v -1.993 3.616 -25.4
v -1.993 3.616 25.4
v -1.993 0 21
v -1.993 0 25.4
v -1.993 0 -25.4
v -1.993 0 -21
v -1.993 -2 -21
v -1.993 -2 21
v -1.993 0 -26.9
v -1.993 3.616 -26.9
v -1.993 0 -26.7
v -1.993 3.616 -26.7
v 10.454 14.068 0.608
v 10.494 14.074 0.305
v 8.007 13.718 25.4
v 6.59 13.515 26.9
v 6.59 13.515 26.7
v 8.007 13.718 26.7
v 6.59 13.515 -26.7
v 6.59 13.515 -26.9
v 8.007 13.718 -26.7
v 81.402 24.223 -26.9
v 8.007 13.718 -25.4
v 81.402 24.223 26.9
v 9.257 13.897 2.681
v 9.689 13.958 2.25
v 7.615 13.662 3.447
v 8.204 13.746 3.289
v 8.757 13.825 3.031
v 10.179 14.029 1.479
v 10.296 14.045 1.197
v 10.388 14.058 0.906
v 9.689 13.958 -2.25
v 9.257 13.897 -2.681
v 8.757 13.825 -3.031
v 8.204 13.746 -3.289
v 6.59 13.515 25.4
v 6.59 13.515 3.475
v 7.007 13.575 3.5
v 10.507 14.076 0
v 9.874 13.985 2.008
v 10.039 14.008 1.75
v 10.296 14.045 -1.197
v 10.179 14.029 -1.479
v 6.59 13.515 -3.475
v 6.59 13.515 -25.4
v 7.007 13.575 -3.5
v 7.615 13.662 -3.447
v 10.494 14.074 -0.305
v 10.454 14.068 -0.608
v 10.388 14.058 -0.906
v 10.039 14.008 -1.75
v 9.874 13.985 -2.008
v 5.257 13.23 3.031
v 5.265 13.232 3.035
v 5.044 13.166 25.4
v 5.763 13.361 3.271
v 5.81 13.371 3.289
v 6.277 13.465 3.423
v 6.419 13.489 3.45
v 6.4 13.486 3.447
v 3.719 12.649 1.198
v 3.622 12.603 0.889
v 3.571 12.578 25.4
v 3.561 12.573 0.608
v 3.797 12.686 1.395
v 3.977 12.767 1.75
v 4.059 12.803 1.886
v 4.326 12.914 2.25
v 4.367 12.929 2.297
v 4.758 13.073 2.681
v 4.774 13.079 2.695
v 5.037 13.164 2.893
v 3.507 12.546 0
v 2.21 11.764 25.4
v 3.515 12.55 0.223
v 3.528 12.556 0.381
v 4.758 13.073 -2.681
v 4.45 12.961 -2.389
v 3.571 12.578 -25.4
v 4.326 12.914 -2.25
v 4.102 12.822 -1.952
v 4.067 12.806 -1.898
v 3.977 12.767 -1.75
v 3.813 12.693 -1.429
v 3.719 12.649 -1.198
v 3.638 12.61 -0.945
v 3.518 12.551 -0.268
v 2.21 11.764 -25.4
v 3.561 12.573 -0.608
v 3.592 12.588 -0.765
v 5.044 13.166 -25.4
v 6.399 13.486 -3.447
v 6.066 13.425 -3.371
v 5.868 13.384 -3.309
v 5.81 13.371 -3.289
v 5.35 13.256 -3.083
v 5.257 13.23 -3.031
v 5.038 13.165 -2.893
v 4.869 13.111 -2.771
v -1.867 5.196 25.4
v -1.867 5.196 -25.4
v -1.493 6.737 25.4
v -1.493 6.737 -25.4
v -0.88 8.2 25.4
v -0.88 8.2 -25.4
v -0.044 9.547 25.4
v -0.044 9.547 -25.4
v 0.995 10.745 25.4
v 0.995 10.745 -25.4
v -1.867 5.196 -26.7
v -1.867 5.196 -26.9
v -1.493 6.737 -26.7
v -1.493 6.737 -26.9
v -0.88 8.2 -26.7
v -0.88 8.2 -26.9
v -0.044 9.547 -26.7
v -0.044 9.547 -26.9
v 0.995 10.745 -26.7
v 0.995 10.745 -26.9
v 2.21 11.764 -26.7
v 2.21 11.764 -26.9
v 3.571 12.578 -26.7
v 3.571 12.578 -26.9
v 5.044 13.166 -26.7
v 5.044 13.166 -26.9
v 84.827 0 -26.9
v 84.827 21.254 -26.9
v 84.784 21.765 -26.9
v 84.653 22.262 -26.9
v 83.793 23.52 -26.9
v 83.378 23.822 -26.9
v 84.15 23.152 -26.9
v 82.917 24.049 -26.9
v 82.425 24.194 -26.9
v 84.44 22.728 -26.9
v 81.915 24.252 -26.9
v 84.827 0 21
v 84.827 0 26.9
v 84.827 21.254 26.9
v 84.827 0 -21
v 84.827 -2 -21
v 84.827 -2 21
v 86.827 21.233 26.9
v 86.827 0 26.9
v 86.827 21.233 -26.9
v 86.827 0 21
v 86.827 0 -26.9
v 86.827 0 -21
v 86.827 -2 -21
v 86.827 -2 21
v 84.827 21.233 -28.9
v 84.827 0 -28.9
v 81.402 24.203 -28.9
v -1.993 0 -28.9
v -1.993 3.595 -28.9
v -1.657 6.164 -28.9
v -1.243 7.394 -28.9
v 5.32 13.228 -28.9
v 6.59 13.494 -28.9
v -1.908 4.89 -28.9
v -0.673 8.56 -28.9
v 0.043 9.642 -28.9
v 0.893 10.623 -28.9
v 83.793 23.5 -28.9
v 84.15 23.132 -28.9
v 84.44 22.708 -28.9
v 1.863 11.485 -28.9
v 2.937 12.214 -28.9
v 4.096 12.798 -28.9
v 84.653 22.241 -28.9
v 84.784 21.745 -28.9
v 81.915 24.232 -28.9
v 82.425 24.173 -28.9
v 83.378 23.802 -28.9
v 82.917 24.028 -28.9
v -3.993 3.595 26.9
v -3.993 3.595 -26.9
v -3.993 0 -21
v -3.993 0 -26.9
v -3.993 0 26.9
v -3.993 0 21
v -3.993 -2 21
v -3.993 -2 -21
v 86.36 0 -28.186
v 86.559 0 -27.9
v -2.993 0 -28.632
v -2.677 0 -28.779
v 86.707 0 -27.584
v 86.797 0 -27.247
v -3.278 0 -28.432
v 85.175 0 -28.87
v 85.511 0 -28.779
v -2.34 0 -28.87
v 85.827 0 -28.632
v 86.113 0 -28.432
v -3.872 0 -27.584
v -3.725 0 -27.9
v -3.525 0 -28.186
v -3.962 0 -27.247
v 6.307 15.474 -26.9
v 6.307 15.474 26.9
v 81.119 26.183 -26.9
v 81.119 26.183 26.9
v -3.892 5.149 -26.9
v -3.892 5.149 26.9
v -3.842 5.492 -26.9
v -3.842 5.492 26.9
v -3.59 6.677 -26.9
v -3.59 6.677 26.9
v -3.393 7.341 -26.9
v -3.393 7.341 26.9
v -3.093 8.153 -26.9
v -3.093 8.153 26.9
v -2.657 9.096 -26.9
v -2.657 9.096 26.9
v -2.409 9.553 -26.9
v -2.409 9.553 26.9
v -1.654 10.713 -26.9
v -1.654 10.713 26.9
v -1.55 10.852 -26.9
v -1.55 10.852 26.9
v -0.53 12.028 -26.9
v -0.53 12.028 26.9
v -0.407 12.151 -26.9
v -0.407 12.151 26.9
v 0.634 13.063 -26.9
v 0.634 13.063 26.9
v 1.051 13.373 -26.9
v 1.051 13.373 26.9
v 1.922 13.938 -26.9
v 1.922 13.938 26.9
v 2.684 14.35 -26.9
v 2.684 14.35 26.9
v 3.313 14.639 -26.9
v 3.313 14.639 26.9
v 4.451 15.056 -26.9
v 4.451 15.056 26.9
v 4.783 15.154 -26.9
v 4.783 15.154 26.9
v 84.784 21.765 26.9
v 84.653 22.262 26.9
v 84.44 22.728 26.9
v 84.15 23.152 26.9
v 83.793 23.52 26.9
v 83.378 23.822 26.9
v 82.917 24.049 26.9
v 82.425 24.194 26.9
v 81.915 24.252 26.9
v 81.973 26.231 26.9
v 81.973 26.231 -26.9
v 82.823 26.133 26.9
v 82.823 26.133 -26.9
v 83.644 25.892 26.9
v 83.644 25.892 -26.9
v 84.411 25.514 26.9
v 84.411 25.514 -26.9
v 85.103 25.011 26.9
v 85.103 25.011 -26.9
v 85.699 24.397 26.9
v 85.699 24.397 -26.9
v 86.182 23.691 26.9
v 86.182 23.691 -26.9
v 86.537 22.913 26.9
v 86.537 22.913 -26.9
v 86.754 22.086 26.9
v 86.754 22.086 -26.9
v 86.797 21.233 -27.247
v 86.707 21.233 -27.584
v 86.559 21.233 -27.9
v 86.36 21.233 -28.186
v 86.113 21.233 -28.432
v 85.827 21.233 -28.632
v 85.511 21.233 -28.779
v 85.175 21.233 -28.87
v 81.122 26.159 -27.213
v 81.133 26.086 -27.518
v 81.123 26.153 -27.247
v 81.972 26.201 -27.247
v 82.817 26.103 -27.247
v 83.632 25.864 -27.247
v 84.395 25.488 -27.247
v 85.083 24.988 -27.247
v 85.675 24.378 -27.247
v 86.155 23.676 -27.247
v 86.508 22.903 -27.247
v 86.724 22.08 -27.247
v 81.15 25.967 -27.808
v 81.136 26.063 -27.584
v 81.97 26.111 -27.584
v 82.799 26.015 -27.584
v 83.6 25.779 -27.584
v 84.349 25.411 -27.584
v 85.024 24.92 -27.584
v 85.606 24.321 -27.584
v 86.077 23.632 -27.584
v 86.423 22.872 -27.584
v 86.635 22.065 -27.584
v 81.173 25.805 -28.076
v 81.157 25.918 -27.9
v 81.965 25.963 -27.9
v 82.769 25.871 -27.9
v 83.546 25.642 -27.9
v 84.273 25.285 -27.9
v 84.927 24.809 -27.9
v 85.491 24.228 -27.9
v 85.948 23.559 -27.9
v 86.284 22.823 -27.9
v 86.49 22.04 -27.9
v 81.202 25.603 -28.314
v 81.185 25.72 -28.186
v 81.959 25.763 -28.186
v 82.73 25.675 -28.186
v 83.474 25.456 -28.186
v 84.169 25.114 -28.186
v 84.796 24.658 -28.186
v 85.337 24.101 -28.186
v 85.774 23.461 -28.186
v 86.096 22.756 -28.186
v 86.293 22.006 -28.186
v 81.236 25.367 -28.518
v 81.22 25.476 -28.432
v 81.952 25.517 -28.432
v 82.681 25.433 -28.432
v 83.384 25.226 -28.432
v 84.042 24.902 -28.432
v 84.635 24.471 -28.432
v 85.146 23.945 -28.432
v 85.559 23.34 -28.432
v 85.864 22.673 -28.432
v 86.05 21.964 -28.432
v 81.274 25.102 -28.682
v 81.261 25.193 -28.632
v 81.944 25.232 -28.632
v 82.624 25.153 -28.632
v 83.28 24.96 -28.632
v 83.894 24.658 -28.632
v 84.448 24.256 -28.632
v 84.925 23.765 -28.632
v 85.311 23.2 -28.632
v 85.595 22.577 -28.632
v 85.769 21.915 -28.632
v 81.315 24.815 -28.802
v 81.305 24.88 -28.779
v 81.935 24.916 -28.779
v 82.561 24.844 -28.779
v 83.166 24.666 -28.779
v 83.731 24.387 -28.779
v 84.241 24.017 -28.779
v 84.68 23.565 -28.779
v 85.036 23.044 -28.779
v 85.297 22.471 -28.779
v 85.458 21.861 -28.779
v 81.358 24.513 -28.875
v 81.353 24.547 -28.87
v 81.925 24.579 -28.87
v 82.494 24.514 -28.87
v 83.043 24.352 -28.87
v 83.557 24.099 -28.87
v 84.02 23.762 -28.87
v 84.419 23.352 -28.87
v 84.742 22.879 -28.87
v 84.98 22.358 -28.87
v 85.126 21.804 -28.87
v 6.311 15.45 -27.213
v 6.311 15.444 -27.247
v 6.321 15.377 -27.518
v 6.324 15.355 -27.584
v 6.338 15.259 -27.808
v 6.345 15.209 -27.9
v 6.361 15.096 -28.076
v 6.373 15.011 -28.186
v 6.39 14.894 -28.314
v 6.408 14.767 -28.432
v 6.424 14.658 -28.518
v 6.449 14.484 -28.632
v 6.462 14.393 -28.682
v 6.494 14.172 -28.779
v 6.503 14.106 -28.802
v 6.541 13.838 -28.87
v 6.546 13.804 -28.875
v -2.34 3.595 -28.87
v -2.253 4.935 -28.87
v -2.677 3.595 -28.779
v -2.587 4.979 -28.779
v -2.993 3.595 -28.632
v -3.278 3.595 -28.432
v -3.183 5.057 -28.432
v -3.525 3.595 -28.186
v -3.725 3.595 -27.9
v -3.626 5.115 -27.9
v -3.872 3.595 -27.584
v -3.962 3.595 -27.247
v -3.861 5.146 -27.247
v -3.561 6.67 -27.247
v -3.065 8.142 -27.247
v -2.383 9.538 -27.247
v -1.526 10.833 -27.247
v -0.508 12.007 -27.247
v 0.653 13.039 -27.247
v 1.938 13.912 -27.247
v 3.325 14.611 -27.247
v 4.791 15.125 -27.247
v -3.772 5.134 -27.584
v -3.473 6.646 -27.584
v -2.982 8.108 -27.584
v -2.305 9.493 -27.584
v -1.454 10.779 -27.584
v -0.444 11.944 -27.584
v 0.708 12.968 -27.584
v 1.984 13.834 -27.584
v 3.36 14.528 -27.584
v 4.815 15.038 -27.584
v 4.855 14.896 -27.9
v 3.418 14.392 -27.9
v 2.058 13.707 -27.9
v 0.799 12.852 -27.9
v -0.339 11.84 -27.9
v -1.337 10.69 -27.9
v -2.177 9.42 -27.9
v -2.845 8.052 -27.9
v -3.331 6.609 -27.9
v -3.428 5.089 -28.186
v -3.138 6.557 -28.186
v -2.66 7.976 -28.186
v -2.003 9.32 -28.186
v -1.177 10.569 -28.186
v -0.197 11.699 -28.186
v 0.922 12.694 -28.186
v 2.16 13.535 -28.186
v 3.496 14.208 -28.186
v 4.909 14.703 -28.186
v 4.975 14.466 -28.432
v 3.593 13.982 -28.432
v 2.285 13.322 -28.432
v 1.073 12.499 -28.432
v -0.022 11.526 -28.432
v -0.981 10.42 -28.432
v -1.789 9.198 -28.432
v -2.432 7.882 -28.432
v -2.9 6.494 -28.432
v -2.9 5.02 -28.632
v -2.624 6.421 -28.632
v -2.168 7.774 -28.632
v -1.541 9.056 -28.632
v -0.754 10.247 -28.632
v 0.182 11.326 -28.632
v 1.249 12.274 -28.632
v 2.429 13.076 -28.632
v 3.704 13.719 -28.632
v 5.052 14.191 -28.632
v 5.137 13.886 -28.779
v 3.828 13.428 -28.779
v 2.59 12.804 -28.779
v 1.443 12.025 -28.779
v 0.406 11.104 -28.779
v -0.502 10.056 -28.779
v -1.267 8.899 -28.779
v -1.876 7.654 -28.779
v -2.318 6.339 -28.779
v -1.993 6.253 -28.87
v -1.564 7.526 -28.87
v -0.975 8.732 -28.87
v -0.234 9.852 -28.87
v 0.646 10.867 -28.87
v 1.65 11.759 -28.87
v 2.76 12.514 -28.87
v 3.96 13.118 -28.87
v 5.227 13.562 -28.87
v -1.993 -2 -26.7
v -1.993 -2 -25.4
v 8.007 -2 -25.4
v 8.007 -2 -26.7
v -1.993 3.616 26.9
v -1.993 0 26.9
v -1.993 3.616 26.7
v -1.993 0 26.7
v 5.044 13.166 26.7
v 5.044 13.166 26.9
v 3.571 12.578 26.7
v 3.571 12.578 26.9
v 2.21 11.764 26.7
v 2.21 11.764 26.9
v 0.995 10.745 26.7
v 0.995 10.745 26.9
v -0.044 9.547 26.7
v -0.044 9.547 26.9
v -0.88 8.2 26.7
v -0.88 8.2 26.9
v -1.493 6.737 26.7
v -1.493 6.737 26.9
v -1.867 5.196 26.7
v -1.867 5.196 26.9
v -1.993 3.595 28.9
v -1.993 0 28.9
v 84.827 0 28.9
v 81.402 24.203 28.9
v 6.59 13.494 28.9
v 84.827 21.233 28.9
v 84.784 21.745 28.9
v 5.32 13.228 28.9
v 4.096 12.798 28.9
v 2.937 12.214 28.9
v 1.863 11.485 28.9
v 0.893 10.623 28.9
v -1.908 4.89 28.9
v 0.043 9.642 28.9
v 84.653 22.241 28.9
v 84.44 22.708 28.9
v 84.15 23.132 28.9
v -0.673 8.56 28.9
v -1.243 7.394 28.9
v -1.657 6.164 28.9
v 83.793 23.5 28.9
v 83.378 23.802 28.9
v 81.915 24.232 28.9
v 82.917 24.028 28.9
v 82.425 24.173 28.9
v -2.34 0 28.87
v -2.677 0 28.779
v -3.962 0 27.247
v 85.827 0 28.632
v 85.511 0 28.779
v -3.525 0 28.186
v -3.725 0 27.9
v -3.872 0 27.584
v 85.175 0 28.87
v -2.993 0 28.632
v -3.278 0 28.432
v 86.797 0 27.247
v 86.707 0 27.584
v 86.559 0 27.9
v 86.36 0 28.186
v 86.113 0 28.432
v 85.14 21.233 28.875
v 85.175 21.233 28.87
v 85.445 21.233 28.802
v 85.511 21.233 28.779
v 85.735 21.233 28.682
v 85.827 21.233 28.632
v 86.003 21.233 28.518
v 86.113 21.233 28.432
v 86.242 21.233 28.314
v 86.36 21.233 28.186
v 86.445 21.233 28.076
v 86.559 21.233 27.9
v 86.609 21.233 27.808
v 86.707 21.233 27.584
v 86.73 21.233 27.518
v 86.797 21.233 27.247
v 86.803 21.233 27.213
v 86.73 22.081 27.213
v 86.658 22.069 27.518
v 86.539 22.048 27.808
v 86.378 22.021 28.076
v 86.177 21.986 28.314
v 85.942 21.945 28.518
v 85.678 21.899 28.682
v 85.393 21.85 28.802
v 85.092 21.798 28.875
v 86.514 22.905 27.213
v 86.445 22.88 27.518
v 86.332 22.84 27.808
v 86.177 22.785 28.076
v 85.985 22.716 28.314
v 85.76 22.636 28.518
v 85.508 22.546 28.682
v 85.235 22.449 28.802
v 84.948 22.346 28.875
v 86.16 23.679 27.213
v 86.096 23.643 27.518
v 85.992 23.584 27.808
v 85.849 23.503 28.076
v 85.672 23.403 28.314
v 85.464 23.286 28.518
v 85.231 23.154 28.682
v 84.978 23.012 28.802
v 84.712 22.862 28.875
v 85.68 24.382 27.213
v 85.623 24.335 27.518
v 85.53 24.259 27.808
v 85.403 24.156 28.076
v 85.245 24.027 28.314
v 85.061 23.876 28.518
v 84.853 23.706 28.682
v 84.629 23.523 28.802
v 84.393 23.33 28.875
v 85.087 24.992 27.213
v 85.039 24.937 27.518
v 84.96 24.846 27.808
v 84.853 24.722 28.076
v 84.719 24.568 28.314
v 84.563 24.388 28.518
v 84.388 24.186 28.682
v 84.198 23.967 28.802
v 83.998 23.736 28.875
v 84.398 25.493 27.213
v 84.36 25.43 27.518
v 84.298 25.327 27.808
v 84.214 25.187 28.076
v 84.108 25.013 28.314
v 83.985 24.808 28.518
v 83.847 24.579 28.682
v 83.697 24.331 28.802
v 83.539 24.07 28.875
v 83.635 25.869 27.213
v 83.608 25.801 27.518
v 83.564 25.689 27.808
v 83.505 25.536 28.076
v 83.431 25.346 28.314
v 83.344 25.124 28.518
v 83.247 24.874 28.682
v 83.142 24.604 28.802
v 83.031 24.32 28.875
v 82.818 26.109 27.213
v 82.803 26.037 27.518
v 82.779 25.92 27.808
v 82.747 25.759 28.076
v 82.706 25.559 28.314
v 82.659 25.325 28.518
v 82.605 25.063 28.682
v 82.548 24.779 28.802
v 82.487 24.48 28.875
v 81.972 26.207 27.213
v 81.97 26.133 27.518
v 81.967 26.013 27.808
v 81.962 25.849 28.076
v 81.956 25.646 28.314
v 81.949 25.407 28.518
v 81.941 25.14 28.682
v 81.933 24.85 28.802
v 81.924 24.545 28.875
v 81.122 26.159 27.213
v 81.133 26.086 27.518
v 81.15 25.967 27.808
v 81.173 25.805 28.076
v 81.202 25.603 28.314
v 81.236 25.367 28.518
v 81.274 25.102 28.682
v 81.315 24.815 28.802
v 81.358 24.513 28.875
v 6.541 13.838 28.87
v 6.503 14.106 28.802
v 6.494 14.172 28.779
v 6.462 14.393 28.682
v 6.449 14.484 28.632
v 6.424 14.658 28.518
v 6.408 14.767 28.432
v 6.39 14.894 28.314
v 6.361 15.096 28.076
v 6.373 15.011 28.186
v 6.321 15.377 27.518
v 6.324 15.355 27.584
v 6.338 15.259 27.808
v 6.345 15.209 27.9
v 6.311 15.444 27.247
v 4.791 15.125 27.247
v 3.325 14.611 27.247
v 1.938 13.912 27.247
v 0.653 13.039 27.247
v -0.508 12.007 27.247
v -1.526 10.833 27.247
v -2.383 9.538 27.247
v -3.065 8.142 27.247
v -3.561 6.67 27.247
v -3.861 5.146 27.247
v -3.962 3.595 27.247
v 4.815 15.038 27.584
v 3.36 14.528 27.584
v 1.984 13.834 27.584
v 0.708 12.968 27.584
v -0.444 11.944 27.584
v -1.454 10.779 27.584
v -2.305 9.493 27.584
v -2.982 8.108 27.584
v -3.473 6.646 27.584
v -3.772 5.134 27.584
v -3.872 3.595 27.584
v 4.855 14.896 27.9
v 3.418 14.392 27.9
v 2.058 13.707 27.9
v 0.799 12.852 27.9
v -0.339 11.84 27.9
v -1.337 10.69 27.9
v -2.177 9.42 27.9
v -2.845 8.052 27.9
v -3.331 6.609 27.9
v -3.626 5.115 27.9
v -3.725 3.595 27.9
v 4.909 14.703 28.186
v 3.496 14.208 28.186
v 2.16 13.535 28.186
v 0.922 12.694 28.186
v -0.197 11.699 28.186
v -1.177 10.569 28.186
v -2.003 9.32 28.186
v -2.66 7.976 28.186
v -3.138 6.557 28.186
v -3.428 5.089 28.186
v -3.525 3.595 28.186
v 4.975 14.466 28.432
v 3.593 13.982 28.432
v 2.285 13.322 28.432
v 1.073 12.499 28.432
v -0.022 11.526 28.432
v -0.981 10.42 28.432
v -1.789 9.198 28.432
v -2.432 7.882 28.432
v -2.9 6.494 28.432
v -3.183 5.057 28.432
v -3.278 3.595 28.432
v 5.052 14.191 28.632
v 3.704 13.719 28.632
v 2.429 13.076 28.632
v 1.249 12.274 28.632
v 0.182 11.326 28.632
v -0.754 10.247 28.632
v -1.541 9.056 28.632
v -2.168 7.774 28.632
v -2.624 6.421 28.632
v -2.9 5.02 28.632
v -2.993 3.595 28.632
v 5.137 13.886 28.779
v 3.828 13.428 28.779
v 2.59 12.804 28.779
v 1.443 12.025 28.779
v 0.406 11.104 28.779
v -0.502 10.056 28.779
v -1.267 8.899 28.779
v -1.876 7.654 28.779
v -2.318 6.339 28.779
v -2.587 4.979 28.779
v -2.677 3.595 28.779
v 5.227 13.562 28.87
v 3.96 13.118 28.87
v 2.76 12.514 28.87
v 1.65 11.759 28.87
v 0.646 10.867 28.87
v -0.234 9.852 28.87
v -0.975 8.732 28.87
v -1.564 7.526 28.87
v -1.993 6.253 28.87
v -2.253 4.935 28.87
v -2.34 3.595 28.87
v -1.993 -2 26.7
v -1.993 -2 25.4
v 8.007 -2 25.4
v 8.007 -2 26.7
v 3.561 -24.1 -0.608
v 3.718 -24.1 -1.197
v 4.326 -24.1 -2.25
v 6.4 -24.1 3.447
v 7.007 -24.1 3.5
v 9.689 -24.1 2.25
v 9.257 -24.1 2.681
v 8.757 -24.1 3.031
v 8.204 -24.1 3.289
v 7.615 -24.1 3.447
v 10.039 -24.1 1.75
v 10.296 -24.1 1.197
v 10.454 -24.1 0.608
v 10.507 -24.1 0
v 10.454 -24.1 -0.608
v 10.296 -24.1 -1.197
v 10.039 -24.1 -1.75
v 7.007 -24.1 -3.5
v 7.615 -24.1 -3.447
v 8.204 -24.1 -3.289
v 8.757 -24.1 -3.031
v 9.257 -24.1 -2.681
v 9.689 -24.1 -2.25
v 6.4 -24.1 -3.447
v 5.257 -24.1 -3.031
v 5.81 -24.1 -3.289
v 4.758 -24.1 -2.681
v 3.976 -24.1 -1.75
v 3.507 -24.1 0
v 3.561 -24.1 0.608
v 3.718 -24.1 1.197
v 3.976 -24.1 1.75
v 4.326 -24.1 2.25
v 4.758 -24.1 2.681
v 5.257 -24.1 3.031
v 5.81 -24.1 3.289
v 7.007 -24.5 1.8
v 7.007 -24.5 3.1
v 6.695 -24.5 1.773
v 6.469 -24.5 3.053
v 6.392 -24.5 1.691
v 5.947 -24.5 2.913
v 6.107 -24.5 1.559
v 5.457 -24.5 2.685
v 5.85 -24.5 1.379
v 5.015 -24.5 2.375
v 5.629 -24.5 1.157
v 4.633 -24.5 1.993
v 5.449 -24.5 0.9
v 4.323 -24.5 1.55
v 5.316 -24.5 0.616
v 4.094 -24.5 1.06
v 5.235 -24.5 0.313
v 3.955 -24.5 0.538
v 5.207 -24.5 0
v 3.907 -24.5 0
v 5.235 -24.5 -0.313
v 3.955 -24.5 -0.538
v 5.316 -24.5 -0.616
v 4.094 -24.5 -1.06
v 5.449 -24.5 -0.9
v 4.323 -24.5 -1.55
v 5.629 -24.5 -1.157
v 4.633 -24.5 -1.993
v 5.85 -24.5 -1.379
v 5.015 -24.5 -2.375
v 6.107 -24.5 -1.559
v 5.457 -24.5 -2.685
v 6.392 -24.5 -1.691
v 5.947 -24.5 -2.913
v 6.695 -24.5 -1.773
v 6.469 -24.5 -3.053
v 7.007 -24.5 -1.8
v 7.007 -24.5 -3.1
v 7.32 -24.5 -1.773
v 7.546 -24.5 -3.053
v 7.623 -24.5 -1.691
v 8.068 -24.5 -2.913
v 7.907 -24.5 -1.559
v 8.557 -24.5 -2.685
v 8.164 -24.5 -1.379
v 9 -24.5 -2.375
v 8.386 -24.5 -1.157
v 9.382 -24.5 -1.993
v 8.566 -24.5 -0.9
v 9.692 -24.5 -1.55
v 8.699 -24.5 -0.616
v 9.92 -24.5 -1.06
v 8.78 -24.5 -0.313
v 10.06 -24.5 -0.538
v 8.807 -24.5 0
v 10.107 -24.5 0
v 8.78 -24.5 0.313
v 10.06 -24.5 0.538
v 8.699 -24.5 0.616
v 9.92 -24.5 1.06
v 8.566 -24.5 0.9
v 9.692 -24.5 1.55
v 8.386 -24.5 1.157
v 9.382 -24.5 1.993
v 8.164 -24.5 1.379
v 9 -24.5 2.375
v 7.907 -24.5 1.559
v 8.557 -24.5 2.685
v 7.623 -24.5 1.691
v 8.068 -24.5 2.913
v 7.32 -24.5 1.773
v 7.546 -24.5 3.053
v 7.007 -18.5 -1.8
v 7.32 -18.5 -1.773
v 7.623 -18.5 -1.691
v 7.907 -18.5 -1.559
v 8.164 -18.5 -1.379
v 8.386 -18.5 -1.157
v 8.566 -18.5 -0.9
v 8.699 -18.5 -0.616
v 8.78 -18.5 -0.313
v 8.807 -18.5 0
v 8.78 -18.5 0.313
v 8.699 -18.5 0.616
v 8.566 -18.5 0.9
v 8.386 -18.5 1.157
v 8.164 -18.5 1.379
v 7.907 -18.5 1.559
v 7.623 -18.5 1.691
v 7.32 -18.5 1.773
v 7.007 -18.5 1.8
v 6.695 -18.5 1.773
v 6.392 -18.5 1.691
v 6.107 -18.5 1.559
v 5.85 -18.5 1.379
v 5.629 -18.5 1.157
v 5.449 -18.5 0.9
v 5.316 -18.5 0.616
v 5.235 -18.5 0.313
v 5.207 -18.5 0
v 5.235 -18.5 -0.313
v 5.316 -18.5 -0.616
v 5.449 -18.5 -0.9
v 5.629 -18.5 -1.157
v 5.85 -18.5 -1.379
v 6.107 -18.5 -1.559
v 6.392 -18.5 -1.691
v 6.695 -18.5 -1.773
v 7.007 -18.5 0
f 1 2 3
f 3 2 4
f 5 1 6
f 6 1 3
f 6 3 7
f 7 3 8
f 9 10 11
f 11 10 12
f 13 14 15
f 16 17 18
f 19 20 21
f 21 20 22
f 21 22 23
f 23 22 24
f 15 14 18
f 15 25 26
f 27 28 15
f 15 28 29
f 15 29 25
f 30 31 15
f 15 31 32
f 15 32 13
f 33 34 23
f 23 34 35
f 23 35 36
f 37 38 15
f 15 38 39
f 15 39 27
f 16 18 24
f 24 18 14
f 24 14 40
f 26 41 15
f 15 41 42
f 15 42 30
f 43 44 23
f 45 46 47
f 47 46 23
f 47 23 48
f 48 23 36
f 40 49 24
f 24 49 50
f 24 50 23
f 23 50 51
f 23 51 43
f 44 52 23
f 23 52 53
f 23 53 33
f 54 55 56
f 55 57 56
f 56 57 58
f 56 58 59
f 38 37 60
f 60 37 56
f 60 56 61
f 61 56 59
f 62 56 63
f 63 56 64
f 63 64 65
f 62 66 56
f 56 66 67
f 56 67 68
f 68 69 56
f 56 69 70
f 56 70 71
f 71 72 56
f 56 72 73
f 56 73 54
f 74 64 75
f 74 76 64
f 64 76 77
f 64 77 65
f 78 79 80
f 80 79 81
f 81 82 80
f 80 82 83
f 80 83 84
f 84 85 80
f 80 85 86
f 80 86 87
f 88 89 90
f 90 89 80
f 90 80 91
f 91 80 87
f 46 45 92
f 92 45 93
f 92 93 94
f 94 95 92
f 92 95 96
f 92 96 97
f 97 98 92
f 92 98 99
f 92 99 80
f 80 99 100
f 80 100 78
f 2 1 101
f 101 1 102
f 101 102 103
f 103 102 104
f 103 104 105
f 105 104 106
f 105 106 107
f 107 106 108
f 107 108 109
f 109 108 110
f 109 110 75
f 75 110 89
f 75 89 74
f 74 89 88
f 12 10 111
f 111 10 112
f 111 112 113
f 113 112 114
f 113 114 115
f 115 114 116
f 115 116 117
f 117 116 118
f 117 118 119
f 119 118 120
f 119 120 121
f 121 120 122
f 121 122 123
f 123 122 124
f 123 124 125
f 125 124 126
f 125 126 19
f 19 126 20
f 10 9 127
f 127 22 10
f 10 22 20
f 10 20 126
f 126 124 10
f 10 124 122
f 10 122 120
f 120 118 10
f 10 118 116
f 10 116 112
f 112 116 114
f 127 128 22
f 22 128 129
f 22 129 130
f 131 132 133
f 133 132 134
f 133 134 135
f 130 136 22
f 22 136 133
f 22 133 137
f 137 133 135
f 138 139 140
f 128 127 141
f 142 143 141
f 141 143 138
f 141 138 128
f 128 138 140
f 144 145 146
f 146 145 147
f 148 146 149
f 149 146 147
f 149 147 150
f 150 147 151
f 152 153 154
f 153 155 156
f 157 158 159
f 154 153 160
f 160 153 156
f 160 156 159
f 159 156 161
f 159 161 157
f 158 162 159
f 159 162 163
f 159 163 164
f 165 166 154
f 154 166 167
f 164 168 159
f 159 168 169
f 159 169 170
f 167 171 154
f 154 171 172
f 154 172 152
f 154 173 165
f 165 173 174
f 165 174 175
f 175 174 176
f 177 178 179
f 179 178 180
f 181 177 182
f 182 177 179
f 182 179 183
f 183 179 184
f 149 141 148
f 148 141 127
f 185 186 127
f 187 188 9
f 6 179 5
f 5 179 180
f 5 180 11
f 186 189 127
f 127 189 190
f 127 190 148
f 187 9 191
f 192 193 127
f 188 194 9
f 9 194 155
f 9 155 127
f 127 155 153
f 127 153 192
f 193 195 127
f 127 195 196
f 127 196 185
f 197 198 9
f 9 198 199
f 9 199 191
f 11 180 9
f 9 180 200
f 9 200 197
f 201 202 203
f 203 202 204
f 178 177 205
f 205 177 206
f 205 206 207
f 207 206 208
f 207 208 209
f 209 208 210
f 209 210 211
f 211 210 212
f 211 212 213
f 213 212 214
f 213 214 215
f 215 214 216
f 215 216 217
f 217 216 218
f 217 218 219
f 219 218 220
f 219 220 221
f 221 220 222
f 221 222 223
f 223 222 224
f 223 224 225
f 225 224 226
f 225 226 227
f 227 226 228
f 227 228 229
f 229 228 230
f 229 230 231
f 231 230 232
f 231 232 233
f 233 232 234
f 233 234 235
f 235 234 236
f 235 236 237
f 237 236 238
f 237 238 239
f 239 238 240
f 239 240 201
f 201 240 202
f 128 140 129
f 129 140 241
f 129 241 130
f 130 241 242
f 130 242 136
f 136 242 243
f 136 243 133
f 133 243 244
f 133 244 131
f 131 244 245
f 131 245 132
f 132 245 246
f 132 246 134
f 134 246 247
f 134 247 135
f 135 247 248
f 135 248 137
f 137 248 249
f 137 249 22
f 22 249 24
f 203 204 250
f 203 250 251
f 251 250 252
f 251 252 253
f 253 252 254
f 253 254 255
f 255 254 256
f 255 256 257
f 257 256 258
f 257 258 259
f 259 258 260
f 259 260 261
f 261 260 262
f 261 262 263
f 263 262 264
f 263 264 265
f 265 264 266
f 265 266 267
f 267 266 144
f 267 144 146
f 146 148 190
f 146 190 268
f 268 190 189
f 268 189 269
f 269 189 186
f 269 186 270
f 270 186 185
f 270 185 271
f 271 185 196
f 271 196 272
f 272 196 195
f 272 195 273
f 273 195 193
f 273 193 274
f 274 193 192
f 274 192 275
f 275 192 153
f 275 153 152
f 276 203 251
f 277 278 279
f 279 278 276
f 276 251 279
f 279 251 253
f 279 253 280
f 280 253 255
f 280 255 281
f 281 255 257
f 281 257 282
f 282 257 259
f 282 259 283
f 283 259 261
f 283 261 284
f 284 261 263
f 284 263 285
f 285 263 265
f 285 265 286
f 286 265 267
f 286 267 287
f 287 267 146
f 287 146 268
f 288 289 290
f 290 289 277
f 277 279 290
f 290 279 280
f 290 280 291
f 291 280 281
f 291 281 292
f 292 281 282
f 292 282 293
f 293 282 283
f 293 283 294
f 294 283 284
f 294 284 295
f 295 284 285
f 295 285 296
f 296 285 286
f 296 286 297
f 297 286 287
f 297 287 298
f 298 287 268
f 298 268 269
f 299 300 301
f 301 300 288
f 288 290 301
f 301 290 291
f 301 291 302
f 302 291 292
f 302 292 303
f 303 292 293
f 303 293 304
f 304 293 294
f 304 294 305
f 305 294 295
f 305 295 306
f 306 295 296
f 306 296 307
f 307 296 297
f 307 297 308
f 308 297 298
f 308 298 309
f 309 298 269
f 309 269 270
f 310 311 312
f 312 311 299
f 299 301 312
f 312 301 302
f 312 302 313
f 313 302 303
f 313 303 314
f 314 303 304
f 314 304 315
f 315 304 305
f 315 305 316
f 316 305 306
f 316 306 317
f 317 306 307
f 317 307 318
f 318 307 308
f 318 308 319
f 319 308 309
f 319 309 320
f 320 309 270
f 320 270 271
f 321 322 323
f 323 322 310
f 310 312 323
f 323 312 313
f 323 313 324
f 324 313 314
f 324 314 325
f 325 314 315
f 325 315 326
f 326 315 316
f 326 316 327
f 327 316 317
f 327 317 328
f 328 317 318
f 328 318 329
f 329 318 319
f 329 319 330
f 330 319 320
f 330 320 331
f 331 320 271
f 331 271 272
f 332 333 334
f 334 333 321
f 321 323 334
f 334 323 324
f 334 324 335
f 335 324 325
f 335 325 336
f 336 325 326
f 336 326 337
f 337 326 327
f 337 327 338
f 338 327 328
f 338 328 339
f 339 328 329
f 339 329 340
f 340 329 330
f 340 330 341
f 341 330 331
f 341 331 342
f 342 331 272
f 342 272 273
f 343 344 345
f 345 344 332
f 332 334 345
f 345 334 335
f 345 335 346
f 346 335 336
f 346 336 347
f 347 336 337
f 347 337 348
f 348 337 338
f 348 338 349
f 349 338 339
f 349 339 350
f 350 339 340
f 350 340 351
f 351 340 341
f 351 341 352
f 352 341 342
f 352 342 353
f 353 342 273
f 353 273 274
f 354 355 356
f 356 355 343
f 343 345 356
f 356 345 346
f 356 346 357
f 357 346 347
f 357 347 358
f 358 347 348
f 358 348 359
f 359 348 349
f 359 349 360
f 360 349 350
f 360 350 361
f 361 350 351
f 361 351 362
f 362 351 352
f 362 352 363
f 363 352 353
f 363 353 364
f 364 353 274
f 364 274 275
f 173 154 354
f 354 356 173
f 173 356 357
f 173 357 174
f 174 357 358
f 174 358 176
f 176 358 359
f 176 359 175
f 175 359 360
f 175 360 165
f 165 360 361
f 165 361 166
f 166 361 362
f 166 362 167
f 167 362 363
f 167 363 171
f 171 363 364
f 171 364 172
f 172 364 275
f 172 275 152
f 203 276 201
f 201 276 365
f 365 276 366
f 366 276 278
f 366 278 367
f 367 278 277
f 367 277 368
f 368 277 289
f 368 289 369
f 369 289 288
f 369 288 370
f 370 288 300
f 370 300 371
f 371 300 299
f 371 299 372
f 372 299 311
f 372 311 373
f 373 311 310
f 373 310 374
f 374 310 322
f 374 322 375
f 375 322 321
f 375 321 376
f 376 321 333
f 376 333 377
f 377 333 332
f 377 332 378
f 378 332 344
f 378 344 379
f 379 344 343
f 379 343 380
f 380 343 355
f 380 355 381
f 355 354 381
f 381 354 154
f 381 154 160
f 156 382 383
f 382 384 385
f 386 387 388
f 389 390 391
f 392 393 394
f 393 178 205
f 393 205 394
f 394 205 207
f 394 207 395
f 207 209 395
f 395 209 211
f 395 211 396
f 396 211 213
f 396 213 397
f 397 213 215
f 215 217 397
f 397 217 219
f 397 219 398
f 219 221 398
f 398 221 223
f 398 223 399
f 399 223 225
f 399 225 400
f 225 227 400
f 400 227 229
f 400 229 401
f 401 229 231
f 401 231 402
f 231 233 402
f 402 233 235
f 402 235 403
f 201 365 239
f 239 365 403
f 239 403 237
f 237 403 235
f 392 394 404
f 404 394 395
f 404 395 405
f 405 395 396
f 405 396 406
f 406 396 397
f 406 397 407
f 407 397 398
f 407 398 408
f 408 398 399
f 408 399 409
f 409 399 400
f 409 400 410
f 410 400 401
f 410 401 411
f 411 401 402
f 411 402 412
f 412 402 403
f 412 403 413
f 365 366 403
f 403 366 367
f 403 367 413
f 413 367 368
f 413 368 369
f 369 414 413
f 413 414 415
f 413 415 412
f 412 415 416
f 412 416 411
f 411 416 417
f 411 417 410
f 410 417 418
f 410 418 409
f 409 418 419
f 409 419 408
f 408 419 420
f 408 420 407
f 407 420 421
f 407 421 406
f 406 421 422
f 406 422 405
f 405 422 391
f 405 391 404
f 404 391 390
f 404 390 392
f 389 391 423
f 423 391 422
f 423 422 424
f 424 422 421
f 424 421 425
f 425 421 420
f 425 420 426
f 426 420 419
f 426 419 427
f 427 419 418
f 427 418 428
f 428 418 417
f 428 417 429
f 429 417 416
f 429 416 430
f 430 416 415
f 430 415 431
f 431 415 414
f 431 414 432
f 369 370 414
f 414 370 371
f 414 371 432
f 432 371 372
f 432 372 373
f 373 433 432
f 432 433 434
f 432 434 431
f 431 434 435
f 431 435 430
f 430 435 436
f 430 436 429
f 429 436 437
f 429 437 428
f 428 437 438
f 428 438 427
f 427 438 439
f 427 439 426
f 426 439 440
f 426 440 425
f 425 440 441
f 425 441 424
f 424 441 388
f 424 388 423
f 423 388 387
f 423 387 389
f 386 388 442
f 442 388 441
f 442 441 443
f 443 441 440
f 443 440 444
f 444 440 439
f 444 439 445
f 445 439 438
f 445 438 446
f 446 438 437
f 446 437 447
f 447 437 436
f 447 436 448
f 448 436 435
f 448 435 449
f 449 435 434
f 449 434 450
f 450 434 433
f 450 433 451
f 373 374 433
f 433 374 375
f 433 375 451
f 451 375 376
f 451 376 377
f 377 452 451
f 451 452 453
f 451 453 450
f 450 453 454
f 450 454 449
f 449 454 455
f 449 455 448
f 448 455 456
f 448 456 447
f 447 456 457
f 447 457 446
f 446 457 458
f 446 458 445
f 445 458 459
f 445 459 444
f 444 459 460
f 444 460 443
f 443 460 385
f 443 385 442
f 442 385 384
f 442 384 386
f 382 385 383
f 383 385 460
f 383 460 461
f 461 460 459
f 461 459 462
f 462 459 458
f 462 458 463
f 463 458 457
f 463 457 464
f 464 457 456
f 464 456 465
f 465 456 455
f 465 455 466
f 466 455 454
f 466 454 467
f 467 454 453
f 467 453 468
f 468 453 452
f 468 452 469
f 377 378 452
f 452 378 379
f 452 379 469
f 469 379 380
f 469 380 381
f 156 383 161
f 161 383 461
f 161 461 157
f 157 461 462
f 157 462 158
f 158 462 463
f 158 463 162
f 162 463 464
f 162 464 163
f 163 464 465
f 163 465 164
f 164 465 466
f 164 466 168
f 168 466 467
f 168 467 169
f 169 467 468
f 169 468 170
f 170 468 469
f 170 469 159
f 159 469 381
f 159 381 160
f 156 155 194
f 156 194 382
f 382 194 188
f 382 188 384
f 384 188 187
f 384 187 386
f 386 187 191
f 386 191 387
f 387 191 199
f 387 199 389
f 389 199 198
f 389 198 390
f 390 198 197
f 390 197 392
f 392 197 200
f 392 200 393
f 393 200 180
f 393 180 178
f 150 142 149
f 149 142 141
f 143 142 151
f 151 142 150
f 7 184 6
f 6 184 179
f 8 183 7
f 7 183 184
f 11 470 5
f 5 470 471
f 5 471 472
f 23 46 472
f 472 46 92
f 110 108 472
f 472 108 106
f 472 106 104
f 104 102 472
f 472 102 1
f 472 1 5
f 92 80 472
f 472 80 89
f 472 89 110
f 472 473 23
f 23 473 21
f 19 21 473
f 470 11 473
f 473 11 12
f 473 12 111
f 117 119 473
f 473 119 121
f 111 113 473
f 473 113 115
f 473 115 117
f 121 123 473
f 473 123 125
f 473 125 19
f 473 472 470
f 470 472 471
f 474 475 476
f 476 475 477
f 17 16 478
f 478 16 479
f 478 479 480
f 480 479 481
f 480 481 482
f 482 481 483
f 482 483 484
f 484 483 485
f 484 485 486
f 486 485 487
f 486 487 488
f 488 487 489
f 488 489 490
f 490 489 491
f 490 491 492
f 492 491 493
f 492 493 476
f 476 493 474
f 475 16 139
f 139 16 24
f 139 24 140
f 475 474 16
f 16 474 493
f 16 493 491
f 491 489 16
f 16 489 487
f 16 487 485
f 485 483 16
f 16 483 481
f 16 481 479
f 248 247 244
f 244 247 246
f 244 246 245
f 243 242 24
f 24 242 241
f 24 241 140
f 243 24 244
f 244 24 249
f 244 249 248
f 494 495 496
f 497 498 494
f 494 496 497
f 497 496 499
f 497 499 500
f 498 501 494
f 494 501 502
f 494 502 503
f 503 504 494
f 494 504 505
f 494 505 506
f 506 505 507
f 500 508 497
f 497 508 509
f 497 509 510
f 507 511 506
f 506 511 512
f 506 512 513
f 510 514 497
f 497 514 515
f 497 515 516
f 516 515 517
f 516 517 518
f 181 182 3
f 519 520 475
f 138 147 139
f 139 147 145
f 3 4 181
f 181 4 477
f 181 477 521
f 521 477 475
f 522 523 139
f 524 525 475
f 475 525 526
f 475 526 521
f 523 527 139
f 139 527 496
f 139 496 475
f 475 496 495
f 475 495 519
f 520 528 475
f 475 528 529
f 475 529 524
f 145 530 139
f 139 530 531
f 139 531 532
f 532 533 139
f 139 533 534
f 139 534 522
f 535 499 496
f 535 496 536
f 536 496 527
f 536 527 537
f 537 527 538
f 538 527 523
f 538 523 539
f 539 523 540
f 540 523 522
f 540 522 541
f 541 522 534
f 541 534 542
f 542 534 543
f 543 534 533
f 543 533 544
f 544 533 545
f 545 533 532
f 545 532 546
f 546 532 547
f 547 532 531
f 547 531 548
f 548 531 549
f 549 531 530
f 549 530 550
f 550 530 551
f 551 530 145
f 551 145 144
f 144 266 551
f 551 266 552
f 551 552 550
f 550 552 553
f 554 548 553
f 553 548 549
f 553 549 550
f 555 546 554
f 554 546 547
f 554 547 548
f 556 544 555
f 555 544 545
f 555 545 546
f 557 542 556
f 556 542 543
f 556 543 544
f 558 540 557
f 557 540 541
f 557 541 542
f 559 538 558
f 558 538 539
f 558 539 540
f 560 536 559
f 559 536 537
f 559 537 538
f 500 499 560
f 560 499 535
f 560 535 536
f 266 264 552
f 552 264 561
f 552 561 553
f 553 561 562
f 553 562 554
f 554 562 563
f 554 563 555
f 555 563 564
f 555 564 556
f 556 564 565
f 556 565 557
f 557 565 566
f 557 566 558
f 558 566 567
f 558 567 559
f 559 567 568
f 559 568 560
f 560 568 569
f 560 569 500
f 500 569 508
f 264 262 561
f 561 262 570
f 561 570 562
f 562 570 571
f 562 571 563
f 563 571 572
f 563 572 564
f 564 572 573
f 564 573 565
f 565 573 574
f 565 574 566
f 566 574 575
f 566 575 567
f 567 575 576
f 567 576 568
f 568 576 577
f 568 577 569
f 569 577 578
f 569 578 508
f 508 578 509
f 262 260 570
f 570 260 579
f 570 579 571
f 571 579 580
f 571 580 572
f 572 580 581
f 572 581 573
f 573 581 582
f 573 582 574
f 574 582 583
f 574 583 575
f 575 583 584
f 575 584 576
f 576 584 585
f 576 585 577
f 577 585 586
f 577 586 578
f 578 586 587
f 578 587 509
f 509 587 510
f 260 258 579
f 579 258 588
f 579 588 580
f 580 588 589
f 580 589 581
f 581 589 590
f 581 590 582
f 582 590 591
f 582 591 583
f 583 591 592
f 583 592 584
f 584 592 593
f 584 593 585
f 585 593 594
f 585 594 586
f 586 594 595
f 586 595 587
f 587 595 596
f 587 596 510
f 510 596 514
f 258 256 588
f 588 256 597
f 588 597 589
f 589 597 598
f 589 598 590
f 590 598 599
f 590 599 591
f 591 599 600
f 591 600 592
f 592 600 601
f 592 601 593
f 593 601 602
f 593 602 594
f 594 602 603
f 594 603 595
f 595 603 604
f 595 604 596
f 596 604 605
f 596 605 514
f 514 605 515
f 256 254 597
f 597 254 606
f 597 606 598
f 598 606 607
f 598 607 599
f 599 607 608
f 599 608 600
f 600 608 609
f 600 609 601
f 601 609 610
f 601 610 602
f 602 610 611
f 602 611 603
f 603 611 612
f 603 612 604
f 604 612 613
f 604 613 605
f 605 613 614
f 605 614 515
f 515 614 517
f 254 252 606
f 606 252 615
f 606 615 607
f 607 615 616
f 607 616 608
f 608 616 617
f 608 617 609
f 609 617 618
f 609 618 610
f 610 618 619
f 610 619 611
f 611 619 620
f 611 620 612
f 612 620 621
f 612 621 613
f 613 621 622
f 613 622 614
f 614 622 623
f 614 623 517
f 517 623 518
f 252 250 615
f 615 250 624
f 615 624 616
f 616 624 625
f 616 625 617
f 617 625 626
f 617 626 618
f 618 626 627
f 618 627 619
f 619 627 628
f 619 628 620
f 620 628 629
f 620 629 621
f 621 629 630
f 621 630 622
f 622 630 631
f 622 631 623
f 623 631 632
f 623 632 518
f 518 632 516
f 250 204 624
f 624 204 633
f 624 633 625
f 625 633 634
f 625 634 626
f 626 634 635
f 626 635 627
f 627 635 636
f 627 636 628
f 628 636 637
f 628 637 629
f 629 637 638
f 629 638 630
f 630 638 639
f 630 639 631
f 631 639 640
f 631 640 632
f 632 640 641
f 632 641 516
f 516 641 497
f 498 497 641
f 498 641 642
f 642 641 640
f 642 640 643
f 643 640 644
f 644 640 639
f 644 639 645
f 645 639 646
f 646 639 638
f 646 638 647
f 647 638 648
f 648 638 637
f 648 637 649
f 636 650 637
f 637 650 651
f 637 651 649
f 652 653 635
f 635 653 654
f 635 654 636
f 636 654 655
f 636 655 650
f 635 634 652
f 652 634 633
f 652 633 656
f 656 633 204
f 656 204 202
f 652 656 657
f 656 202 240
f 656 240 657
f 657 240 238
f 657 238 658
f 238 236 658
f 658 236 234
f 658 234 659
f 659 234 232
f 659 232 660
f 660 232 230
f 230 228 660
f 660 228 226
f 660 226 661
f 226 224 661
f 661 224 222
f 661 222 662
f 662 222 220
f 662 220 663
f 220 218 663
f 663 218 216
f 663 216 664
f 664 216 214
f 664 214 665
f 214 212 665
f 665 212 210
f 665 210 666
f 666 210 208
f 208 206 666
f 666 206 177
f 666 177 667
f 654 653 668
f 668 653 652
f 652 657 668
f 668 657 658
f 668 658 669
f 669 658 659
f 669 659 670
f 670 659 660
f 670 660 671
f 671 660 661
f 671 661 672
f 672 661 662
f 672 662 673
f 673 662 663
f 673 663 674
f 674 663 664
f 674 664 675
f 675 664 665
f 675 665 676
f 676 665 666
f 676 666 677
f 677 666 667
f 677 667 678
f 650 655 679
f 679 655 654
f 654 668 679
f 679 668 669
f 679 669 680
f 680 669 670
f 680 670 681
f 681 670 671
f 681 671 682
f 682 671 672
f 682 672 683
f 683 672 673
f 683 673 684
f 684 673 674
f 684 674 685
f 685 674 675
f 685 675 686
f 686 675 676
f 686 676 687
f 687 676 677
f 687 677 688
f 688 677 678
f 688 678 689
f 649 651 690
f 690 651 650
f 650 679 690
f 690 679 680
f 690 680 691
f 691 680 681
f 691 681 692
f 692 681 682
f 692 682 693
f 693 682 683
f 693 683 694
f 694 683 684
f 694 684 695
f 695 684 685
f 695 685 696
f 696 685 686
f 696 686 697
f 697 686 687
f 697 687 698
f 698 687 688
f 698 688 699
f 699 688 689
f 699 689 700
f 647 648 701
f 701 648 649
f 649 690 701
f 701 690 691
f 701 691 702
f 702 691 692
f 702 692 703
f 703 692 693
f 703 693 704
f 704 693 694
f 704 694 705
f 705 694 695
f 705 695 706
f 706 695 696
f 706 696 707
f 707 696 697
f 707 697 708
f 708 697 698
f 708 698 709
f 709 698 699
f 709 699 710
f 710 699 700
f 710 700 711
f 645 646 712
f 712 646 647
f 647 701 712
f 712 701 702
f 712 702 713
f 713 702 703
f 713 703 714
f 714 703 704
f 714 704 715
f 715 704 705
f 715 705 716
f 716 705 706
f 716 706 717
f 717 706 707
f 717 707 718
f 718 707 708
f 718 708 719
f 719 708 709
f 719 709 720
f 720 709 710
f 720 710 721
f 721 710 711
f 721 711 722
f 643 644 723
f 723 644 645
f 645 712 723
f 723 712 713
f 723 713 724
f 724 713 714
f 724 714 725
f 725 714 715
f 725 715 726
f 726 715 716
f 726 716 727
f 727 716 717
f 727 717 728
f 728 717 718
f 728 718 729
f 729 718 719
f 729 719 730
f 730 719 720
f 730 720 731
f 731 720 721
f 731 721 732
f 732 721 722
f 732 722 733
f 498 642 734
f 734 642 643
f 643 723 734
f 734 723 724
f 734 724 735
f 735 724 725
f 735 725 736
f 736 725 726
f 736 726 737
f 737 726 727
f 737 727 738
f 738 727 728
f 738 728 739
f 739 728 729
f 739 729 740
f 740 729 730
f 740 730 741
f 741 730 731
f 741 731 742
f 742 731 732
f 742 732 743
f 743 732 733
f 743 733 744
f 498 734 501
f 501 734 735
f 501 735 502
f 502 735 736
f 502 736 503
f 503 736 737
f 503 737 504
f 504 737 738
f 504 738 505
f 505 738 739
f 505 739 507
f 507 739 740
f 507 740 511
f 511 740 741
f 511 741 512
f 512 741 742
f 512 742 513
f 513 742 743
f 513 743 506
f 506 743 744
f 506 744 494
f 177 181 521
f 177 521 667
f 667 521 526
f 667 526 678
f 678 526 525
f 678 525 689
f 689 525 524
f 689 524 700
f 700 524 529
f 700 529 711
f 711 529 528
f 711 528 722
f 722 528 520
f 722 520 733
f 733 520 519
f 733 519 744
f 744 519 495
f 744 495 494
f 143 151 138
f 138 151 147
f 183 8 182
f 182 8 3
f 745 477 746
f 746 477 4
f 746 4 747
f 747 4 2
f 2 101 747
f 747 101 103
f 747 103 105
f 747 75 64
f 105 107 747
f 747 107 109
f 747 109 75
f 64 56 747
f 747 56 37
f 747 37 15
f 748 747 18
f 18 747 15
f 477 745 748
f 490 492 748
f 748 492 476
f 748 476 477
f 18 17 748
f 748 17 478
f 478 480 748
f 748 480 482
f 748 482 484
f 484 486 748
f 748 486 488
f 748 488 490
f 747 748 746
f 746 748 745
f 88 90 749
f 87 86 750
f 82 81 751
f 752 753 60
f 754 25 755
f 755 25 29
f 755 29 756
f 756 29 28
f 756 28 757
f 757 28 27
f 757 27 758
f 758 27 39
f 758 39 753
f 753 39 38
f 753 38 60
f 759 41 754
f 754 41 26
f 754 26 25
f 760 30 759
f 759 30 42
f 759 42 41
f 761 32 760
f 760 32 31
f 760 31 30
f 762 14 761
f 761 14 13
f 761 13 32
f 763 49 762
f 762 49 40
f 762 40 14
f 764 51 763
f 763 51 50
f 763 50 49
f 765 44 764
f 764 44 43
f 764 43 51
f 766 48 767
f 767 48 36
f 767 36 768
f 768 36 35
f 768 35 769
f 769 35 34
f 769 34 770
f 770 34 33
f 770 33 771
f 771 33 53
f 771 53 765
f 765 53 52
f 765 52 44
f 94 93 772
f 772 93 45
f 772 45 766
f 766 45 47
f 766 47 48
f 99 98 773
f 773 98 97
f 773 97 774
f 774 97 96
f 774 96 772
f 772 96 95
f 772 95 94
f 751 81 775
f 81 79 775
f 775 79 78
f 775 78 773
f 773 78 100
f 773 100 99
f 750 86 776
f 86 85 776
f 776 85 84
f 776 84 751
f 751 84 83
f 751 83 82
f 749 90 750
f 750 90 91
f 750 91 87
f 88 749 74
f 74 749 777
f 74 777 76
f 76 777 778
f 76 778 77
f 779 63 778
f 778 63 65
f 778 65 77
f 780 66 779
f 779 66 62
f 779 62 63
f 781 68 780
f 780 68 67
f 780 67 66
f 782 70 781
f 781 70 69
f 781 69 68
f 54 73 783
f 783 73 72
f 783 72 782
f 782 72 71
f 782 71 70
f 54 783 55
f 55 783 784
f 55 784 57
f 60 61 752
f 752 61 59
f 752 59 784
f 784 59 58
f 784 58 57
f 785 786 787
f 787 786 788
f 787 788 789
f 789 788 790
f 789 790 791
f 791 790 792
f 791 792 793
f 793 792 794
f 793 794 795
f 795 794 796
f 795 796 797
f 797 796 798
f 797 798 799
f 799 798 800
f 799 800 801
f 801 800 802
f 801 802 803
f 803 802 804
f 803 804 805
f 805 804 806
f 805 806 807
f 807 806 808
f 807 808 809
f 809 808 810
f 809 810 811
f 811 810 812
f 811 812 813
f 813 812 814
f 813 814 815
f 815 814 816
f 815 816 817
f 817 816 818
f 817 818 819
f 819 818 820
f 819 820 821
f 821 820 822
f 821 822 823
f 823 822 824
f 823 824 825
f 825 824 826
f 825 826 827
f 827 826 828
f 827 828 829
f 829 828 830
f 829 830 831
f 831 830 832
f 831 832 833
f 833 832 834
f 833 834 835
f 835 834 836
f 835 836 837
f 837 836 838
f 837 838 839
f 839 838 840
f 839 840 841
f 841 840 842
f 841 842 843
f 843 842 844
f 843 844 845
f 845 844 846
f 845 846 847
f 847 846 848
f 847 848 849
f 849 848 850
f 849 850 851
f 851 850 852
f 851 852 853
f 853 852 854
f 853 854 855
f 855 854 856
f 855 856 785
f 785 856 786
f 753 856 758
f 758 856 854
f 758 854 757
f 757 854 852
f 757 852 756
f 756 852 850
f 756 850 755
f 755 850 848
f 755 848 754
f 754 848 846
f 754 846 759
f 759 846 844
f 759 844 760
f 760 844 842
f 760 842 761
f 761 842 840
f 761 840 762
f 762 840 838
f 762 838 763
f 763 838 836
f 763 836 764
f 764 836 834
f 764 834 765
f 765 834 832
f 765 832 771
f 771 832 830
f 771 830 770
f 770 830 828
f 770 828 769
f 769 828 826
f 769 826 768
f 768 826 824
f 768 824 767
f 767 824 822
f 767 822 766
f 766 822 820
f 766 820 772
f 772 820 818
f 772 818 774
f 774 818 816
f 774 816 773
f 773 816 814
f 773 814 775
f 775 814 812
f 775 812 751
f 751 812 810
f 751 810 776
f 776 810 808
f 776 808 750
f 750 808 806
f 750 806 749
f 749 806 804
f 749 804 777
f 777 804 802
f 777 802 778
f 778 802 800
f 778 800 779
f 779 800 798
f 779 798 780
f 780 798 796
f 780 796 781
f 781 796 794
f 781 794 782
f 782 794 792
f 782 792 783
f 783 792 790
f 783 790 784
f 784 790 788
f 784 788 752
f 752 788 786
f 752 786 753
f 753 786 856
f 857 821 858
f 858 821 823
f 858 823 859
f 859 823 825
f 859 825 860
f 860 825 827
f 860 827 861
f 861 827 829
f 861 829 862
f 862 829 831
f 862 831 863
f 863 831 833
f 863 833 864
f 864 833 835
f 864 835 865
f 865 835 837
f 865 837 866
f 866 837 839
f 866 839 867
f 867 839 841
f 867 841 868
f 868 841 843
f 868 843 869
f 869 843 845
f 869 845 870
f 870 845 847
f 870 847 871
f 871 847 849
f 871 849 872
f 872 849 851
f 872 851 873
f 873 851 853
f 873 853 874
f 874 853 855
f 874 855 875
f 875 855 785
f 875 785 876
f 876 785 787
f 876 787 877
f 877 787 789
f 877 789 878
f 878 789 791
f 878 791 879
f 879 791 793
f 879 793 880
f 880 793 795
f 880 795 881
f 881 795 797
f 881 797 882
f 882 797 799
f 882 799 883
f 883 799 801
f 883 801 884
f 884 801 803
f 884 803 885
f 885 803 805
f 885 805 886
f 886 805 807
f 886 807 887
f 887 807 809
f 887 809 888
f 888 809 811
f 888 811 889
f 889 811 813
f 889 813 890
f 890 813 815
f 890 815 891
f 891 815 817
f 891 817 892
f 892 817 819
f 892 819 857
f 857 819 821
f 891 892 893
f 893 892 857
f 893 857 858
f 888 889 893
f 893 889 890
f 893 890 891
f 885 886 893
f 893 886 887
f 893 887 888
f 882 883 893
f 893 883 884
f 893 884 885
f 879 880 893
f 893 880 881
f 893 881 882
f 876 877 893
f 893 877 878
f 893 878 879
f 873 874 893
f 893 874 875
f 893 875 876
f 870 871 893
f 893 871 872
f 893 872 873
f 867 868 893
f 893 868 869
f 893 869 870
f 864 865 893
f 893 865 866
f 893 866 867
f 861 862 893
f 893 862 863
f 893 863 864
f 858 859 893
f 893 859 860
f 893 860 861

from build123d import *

# Parameters (mm, degrees)
BOSS_EXTRUDE1_DEPTH             = 25
CUT_EXTRUDE1_START              = -28.9
SKETCH2_OUTSIDE_W               = 112.526
SKETCH2_OUTSIDE_H               = 46.706
CUT_EXTRUDE1_DEPTH              = 28.9
SKETCH4_W                       = 91.745694177
SKETCH4_H                       = 28.9
BOSS_EXTRUDE2_DEPTH             = 2
FILLET4_R                       = 10
FILLET5_R                       = 12
FILLET3_R                       = 3
FILLET2_R                       = 5
FILLET1_R                       = 2
SKETCH5_W                       = 2
SKETCH5_H                       = 21
BOSS_EXTRUDE3_DEPTH             = 2
SKETCH10_W                      = 10
SKETCH10_H                      = 1.3
BOSS_EXTRUDE6_DEPTH             = 2
BOSS_EXTRUDE6_DIRECTION_2_REACH = 97.197
BOSS_EXTRUDE7_REACH             = 97.197
SKETCH11_R                      = 3.5
BOSS_EXTRUDE7_DIRECTION_2_DEPTH = 24.5
CHAMFER1_SIZE                   = 0.4
SKETCH12_R                      = 1.8
CUT_EXTRUDE2_DEPTH              = 6


with BuildPart() as part:
    # Sketch1 → Boss-Extrude1 (new body)
    with BuildSketch(Plane(origin=(0, 0, 0), x_dir=(1, 0, 0), z_dir=(0, 1, 0))):
        Polygon((-3.992584003, 28.9), (-3.992584003, 0), (-1.992584003, 0), (-1.992584003, 26.9), (84.827415997, 26.9), (84.827415997, 0), (86.827415997, 0), (86.827415997, 28.9), align=None)
    extrude(amount=BOSS_EXTRUDE1_DEPTH)

    # Sketch2 outside → Cut-Extrude1 (cut)
    with BuildSketch(Plane.XY.offset(CUT_EXTRUDE1_START)):
        with Locations((41.417, 12.5)):
            Rectangle(SKETCH2_OUTSIDE_W, SKETCH2_OUTSIDE_H)
        Polygon((-3.992584003, 0), (86.827415997, 0), (86.827415997, 25), (-3.992584003, 12), align=None, mode=Mode.SUBTRACT)
    extrude(amount=CUT_EXTRUDE1_DEPTH, mode=Mode.SUBTRACT)

    # Sketch4 → Boss-Extrude2 (add, along a direction that is not the sketch's normal)
    with BuildSketch(Plane(origin=(-1.763358246, 12.319091993, 0), x_dir=(0.9899102166570531, 0.14169602308458154, 0), z_dir=(-0.1416960230845815, 0.989910216657053, 0))):
        with Locations((43.620899669, 14.45)):
            Rectangle(SKETCH4_W, SKETCH4_H)
    extrude(amount=BOSS_EXTRUDE2_DEPTH, dir=(0, 1, 0))

    # Fillet4
    fillet4_edges = [part.edges().sort_by_distance(p)[0] for p in [
        (-1.992584003, 12.286280555, -13.45),
    ]]
    fillet(fillet4_edges, radius=FILLET4_R)

    # Fillet5
    fillet5_edges = [part.edges().sort_by_distance(p)[0] for p in [
        (-3.992584003, 14, -14.45),
    ]]
    fillet(fillet5_edges, radius=FILLET5_R)

    # Fillet3
    fillet3_edges = [part.edges().sort_by_distance(p)[0] for p in [
        (84.827415997, 24.713719445, -13.45),
    ]]
    fillet(fillet3_edges, radius=FILLET3_R)

    # Fillet2
    fillet2_edges = [part.edges().sort_by_distance(p)[0] for p in [
        (86.827415997, 27, -14.45),
    ]]
    fillet(fillet2_edges, radius=FILLET2_R)

    # Fillet1
    fillet1_edges = [part.edges().sort_by_distance(p)[0] for p in [
        (-3.992584003, 1.797685917, -28.9),
        (-1.059122133, 11.456535, -28.9),
        (43.7129998, 20.828590503, -28.9),
        (86.827415997, 10.616667745, -28.9),
        (85.102900649, 25.01105971, -28.9),
    ]]
    fillet(fillet1_edges, radius=FILLET1_R)

    # Sketch5 → Boss-Extrude3 (add)
    with BuildSketch(Plane(origin=(0, 0, 0), x_dir=(1, 0, 0), z_dir=(0, 1, 0))):
        with Locations((-2.992584003, 10.5)):
            Rectangle(SKETCH5_W, SKETCH5_H)
        with Locations((85.827415997, 10.5)):
            Rectangle(SKETCH5_W, SKETCH5_H)
    extrude(amount=-BOSS_EXTRUDE3_DEPTH)

    # Sketch10 → Boss-Extrude6 (add)
    with BuildSketch(Plane(origin=(0, 0, 0), x_dir=(1, 0, 0), z_dir=(0, 1, 0))):
        with Locations((3.007415997, 26.05)):
            Rectangle(SKETCH10_W, SKETCH10_H)
    extrude(amount=-BOSS_EXTRUDE6_DEPTH)

    # Sketch10 → Boss-Extrude6 direction 2 (add, up to next)
    with BuildSketch(Plane(origin=(0, 0, 0), x_dir=(1, 0, 0), z_dir=(0, 1, 0)), mode=Mode.PRIVATE) as boss_extrude6_direction_2_sk1:
        with Locations((3.007415997, 26.05)):
            Rectangle(SKETCH10_W, SKETCH10_H)
    boss_extrude6_direction_2_tool1 = extrude(boss_extrude6_direction_2_sk1.sketch, amount=BOSS_EXTRUDE6_DIRECTION_2_REACH, mode=Mode.PRIVATE) - part.part
    add(boss_extrude6_direction_2_tool1.solids().sort_by_distance((3.007416, 0, -26.05))[0])

    # Mirror6: part across plane


with BuildPart() as part_1:
    add(part.part)
    add(part.part.mirror(Plane.XY))

    # Sketch11 → Boss-Extrude7 (add, up to next)
    with BuildSketch(Plane(origin=(0, 0, 0), x_dir=(1, 0, 0), z_dir=(0, 1, 0)), mode=Mode.PRIVATE) as boss_extrude7_sk1:
        with Locations(Location((7.007415997, 0, 0), (0, 0, 270))):
            Circle(SKETCH11_R)
    boss_extrude7_tool1 = extrude(boss_extrude7_sk1.sketch, amount=BOSS_EXTRUDE7_REACH, mode=Mode.PRIVATE) - part_1.part
    add(boss_extrude7_tool1.solids().sort_by_distance((7.007416, 0, 0))[0])

    # Sketch11 → Boss-Extrude7 direction 2 (add)
    with BuildSketch(Plane(origin=(0, 0, 0), x_dir=(1, 0, 0), z_dir=(0, 1, 0))):
        with Locations(Location((7.007415997, 0, 0), (0, 0, 270))):
            Circle(SKETCH11_R)
    extrude(amount=-BOSS_EXTRUDE7_DIRECTION_2_DEPTH)

    # Chamfer1
    chamfer1_edges = [part_1.edges().sort_by_distance(p)[0] for p in [
        (7.007415997, -24.5, -3.5),
    ]]
    chamfer(chamfer1_edges, length=CHAMFER1_SIZE)

    # Sketch12 → Cut-Extrude2 (cut)
    with BuildSketch(Plane.XZ.offset(24.5)):
        with Locations(Location((7.007415997, 0, 0), (0, 0, 270))):
            Circle(SKETCH12_R)
    extrude(amount=-CUT_EXTRUDE2_DEPTH, mode=Mode.SUBTRACT)


solid = part_1.part
